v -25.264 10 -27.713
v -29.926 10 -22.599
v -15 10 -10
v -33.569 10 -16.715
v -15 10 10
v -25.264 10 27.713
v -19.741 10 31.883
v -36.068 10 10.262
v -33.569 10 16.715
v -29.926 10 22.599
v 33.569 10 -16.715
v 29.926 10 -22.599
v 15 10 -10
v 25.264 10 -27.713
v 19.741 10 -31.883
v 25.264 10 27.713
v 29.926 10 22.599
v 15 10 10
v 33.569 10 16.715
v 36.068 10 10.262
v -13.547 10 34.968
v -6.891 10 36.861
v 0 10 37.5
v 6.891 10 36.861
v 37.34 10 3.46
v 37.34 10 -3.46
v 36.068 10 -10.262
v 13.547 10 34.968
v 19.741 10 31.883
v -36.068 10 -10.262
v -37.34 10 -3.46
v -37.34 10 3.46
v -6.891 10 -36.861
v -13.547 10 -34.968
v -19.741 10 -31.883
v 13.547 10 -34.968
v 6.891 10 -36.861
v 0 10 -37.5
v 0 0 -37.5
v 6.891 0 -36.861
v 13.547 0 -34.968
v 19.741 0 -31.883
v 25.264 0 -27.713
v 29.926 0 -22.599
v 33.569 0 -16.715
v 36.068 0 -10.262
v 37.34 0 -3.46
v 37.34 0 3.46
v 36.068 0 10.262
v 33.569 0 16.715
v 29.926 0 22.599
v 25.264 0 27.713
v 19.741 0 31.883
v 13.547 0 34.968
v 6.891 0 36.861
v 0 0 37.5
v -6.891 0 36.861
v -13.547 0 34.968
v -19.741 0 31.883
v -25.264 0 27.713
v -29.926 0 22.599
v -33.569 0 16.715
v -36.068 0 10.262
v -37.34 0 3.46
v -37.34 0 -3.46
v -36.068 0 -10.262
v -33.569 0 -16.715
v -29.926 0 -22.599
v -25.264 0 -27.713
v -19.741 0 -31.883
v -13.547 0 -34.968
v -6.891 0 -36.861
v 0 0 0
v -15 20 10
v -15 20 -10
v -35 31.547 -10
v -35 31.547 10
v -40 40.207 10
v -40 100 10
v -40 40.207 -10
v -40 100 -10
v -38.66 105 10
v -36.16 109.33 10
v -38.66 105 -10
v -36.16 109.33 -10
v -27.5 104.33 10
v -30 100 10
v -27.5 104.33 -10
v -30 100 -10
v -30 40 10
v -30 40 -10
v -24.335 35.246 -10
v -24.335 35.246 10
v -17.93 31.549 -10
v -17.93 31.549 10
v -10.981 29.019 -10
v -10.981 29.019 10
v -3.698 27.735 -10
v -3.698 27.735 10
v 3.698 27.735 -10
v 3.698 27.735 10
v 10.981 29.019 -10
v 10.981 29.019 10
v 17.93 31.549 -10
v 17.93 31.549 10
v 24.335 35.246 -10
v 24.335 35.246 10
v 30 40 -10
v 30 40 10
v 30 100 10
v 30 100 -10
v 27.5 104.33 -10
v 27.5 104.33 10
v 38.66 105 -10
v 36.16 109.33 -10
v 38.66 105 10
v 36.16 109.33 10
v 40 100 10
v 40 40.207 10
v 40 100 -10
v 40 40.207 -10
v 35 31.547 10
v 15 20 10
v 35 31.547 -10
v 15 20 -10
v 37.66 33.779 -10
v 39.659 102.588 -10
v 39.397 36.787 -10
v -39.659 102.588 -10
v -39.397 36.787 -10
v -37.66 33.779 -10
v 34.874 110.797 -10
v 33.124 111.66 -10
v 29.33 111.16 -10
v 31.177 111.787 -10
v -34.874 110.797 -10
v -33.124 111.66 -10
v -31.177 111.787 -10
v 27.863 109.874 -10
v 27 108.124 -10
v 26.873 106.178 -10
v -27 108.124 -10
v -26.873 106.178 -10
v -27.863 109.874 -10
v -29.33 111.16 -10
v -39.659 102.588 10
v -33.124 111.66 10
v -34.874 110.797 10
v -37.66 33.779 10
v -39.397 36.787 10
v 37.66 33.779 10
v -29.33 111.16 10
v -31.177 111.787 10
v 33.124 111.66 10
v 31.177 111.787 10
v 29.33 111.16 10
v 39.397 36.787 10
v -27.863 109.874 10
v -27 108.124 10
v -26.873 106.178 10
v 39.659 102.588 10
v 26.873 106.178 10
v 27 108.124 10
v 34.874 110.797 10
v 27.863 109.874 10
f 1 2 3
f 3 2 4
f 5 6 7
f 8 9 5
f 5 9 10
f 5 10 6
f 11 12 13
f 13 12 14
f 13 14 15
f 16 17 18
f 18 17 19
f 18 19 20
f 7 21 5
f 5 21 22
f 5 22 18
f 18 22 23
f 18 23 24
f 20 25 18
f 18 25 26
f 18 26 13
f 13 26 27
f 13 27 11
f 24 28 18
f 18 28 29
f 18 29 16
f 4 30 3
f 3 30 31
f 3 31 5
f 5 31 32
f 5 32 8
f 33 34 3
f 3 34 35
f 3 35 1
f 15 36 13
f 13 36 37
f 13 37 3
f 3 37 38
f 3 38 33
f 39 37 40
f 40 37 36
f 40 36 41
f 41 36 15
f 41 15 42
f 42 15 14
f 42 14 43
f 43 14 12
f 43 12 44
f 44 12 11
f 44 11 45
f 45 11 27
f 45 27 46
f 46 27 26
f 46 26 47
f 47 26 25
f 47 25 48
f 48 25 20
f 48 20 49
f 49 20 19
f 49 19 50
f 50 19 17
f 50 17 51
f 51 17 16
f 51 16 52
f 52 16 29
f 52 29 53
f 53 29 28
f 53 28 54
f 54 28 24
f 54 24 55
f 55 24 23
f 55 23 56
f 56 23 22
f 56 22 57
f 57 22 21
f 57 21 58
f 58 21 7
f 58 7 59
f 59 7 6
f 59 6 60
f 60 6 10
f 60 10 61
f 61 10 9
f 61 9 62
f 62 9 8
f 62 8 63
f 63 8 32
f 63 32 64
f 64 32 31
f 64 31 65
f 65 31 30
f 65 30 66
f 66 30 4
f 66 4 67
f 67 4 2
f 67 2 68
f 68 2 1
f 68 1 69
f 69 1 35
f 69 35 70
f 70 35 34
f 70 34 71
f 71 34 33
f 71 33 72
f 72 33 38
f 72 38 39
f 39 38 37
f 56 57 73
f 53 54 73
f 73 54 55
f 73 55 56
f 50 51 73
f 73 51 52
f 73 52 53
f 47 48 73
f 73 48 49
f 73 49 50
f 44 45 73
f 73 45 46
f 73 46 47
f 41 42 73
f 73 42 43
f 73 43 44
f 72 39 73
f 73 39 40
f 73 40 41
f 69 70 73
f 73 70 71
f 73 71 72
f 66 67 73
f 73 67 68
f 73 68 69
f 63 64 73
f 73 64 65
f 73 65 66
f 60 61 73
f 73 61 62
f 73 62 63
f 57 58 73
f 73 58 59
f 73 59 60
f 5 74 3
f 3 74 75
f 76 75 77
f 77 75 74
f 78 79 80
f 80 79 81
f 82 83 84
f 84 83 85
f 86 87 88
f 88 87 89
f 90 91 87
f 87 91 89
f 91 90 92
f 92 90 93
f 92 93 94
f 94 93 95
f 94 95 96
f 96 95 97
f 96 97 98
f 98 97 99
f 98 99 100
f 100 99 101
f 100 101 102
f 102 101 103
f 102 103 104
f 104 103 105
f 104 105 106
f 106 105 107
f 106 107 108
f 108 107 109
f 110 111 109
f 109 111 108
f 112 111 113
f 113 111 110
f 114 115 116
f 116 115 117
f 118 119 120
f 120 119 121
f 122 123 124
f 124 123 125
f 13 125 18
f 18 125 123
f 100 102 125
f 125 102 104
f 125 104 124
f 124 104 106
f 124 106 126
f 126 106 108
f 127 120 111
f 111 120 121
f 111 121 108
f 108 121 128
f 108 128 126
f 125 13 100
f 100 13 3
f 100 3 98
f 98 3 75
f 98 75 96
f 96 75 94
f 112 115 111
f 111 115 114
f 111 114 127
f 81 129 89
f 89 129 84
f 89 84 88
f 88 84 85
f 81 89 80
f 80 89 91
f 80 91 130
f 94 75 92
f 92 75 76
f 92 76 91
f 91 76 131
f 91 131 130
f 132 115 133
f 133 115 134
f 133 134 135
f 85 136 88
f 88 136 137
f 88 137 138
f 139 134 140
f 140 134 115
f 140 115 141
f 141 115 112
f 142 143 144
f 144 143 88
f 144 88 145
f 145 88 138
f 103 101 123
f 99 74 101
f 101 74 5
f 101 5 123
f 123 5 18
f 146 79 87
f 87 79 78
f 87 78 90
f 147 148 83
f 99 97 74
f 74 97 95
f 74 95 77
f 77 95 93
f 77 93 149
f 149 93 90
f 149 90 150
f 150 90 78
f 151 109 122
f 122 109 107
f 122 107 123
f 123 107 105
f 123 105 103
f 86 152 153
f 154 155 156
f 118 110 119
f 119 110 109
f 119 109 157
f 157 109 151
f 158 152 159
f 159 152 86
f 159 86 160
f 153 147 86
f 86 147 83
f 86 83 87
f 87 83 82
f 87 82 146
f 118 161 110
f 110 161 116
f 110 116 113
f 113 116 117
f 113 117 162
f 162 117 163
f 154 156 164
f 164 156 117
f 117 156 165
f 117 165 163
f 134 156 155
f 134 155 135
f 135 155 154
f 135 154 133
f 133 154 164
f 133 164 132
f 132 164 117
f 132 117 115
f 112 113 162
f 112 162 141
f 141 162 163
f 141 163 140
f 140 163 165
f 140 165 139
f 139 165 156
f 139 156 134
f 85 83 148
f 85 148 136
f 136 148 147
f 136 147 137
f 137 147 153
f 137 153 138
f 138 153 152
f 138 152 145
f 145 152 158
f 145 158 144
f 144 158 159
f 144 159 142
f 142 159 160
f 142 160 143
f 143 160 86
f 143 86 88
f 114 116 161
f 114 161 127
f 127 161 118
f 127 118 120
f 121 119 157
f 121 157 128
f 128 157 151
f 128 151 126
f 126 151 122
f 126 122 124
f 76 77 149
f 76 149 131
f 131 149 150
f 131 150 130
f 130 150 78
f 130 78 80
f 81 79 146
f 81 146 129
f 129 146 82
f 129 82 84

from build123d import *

# Parameters (mm, degrees)
SKETCH_1_R           = 37.5
EXTRUDE_1_DEPTH      = 10
EXTRUDE_2_DEPTH      = 10
EXTRUDE_2_DEPTH_BACK = 10
FILLET_1_R           = 5
FILLET_2_R           = 10


with BuildPart() as part:
    # 草图1 → 凸台-拉伸1 (new body)
    with BuildSketch(Plane(origin=(0, 0, 0), x_dir=(1, 0, 0), z_dir=(0, 1, 0))):
        with Locations(Location((0, 0, 0), (0, 0, 270))):
            Circle(SKETCH_1_R)
    extrude(amount=EXTRUDE_1_DEPTH)

    # 草图2 → 凸台-拉伸2 (add, two sides: drawn at the far end of the back side and taken through both)
    with BuildSketch(Plane.XY.offset(-EXTRUDE_2_DEPTH_BACK)):
        with BuildLine():
            Line((15, 0), (15, 20))
            Line((15, 20), (40, 34.43375673))
            Line((40, 34.43375673), (40, 102.679491924))
            Line((40, 102.679491924), (33.660254038, 113.660254038))
            Line((33.660254038, 113.660254038), (25, 108.660254038))
            Line((25, 108.660254038), (30, 100))
            Line((30, 100), (30, 40))
            ThreePointArc((30, 40), (0, 27.573593129), (-30, 40))
            Line((-30, 40), (-30, 100))
            Line((-30, 100), (-25, 108.660254038))
            Line((-25, 108.660254038), (-33.660254038, 113.660254038))
            Line((-33.660254038, 113.660254038), (-40, 102.679491924))
            Line((-40, 102.679491924), (-40, 34.43375673))
            Line((-40, 34.43375673), (-15, 20))
            Line((-15, 20), (-15, 0))
            Line((-15, 0), (15, 0))
        make_face()
    extrude(amount=EXTRUDE_2_DEPTH + EXTRUDE_2_DEPTH_BACK)

    # 圆角1
    fillet_1_edges = [part.edges().sort_by_distance(p)[0] for p in [
        (33.660254038, 113.660254038, 0),
        (25, 108.660254038, 0),
        (-25, 108.660254038, 0),
        (-33.660254038, 113.660254038, 0),
    ]]
    fillet(fillet_1_edges, radius=FILLET_1_R - 0.0001)  # a hair under: the kernel refuses the full size

    # 圆角2
    fillet_2_edges = [part.edges().sort_by_distance(p)[0] for p in [
        (-40, 34.43375673, 0),
        (-40, 102.679491924, 0),
        (40, 102.679491924, 0),
        (40, 34.43375673, 0),
    ]]
    fillet(fillet_2_edges, radius=FILLET_2_R)


solid = part.part
